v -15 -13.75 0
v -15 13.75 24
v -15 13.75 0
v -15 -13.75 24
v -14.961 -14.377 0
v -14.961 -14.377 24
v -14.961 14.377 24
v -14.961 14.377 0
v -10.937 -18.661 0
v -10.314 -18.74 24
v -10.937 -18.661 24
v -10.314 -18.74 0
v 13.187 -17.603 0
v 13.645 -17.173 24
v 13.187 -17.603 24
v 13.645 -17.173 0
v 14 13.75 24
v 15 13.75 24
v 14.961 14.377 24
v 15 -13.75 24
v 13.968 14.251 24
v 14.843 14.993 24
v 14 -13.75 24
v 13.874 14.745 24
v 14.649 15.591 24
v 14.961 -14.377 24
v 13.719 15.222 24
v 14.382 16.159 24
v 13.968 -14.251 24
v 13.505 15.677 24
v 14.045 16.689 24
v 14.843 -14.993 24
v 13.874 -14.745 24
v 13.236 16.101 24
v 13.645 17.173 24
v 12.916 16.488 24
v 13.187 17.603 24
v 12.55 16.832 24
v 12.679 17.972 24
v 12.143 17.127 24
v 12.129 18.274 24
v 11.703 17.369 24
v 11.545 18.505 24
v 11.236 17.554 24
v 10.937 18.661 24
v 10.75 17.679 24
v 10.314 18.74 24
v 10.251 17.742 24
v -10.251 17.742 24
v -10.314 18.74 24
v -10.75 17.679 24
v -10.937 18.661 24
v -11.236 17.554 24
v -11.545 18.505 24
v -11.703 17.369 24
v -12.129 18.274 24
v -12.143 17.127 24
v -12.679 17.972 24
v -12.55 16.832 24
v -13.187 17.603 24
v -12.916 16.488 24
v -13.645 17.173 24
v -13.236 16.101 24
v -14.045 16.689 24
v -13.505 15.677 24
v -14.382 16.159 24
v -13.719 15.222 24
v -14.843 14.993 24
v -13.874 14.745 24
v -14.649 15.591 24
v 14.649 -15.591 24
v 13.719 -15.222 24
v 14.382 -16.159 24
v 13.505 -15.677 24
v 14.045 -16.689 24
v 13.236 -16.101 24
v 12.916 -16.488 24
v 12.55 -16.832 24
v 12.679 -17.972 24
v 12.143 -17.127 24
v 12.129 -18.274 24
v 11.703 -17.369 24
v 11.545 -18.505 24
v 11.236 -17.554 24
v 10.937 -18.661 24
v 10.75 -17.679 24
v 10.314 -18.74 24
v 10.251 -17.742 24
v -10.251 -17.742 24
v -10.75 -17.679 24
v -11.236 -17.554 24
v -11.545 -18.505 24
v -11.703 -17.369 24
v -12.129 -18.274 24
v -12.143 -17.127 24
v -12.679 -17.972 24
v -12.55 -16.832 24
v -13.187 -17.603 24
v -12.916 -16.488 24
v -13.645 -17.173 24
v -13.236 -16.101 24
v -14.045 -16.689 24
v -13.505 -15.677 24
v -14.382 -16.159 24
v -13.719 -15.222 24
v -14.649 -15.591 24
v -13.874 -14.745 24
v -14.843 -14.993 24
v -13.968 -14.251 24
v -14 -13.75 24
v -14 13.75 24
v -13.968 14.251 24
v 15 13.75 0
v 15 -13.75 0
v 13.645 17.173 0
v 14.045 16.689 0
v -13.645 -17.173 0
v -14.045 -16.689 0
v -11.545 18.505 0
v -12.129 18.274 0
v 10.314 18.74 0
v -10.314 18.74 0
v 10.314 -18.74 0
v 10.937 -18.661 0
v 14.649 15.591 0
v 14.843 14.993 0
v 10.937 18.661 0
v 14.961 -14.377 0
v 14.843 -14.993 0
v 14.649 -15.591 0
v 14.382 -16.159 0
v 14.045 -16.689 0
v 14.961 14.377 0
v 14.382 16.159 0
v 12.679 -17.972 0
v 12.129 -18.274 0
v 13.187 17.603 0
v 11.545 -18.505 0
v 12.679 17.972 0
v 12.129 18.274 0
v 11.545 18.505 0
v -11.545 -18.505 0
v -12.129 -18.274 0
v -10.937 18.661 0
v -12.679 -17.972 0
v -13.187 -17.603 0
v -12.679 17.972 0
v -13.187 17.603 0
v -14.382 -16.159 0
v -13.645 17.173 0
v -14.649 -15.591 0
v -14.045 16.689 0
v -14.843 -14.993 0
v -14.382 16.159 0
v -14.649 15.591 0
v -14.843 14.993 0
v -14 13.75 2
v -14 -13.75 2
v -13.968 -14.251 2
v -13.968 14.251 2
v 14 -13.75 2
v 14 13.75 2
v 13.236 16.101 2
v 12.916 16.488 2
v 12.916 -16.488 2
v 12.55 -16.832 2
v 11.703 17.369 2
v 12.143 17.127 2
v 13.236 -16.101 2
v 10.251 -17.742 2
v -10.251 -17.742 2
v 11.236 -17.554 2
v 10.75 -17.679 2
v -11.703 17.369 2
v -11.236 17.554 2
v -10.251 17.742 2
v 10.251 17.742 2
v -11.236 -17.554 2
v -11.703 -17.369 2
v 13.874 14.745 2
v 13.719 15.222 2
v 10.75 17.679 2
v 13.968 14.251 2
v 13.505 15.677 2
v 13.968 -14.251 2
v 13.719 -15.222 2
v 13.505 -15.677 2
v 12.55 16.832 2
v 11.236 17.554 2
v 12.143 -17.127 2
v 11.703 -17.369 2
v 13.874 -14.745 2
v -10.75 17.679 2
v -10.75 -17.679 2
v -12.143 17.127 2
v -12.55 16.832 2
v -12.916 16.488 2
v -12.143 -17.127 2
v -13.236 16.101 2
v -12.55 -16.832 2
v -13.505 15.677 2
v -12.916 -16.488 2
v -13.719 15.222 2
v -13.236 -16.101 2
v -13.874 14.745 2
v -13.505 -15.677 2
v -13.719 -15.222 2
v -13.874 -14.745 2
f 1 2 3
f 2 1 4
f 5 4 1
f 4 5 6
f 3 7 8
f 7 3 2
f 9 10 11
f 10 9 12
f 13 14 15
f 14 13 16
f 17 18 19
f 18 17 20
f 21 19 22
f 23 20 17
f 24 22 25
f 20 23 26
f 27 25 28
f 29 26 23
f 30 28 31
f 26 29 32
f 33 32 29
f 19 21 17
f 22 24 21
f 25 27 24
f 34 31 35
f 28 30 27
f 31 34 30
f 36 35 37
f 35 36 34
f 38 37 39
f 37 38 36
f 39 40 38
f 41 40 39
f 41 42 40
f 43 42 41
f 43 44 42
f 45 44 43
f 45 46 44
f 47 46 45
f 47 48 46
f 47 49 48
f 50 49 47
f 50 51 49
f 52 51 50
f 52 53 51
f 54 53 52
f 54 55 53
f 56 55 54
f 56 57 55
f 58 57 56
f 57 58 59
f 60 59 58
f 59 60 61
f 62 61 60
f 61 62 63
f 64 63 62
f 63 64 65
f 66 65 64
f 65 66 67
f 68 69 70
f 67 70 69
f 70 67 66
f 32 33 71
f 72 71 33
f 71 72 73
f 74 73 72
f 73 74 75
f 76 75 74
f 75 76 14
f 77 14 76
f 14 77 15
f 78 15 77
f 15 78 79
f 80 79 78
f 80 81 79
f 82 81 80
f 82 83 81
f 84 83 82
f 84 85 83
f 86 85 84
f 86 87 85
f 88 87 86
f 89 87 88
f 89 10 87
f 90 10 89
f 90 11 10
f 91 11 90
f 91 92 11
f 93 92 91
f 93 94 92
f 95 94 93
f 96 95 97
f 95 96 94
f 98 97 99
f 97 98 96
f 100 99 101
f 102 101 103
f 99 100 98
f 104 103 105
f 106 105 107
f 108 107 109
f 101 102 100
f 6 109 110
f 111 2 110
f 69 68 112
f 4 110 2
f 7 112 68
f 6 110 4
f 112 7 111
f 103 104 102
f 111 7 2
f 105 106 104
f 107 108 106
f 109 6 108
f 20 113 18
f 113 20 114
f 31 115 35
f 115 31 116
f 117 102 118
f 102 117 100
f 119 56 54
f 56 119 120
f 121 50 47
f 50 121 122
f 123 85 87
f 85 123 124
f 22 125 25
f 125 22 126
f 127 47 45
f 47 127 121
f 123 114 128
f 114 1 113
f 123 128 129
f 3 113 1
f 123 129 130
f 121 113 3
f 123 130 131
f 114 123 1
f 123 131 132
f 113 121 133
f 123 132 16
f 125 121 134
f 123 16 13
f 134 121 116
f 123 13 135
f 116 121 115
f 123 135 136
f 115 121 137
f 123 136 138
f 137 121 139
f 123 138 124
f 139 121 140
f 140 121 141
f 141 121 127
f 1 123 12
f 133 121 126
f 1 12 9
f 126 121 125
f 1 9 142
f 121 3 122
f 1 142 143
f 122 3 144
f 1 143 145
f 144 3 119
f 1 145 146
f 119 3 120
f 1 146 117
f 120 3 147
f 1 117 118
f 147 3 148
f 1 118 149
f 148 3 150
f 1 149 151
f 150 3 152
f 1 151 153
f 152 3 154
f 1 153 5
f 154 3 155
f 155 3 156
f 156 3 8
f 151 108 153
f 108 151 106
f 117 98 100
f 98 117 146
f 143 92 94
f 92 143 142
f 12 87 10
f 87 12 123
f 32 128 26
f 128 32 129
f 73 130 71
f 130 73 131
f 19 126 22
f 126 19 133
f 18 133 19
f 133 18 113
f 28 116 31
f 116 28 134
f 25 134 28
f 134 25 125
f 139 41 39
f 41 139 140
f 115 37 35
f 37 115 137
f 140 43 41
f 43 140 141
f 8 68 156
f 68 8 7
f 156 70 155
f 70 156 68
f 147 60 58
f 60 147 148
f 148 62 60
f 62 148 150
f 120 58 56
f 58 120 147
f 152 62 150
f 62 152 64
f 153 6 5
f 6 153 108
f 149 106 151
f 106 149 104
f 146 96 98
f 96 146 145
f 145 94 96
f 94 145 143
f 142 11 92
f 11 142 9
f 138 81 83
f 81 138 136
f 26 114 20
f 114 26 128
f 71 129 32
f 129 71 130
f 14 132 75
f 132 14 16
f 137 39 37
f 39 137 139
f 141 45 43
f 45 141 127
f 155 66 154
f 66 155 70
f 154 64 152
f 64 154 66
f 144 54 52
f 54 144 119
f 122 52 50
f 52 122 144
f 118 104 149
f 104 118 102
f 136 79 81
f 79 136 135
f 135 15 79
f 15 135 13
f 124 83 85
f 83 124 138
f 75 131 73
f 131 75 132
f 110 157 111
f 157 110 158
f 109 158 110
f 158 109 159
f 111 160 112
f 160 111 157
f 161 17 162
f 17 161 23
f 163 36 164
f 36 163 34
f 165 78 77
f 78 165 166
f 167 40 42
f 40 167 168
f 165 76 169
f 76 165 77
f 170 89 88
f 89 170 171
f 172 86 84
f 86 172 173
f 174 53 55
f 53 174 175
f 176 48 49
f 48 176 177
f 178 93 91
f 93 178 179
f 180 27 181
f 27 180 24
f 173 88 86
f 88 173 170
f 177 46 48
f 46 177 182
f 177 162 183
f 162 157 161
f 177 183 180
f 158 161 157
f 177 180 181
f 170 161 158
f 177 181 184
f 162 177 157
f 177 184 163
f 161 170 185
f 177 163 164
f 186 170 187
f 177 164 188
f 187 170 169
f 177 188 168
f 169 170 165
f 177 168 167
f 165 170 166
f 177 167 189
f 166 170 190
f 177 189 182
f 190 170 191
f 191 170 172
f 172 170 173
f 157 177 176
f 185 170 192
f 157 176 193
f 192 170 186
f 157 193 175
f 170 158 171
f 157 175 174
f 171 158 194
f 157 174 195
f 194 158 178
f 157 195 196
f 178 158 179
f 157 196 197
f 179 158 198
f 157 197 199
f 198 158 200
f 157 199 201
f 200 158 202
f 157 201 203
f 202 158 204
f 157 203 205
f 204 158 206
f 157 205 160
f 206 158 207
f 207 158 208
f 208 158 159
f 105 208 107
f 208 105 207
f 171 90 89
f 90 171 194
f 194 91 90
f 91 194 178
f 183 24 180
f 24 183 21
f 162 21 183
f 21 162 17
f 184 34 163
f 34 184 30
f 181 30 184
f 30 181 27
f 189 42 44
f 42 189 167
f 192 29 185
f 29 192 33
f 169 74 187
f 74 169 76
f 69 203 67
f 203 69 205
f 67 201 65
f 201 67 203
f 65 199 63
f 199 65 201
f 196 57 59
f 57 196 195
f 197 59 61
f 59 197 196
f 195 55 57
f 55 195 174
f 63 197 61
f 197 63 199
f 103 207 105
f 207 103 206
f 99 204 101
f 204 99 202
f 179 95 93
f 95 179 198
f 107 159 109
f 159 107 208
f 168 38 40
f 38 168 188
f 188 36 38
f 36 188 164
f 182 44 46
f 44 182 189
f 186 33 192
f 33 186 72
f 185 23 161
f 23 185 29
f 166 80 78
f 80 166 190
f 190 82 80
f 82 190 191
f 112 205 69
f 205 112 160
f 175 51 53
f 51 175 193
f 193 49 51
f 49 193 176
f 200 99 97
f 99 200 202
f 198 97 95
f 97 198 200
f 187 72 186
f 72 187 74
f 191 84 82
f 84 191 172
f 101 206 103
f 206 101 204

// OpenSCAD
$fn = 50;


difference() {
	union() {
		hull() {
			translate(v = [-10.0000000000, 13.7500000000, 0]) {
				cylinder(h = 24, r = 5);
			}
			translate(v = [10.0000000000, 13.7500000000, 0]) {
				cylinder(h = 24, r = 5);
			}
			translate(v = [-10.0000000000, -13.7500000000, 0]) {
				cylinder(h = 24, r = 5);
			}
			translate(v = [10.0000000000, -13.7500000000, 0]) {
				cylinder(h = 24, r = 5);
			}
		}
	}
	union() {
		translate(v = [0, 0, 2]) {
			hull() {
				translate(v = [-10.0000000000, 13.7500000000, 0]) {
					cylinder(h = 22, r = 4);
				}
				translate(v = [10.0000000000, 13.7500000000, 0]) {
					cylinder(h = 22, r = 4);
				}
				translate(v = [-10.0000000000, -13.7500000000, 0]) {
					cylinder(h = 22, r = 4);
				}
				translate(v = [10.0000000000, -13.7500000000, 0]) {
					cylinder(h = 22, r = 4);
				}
			}
		}
	}
}
